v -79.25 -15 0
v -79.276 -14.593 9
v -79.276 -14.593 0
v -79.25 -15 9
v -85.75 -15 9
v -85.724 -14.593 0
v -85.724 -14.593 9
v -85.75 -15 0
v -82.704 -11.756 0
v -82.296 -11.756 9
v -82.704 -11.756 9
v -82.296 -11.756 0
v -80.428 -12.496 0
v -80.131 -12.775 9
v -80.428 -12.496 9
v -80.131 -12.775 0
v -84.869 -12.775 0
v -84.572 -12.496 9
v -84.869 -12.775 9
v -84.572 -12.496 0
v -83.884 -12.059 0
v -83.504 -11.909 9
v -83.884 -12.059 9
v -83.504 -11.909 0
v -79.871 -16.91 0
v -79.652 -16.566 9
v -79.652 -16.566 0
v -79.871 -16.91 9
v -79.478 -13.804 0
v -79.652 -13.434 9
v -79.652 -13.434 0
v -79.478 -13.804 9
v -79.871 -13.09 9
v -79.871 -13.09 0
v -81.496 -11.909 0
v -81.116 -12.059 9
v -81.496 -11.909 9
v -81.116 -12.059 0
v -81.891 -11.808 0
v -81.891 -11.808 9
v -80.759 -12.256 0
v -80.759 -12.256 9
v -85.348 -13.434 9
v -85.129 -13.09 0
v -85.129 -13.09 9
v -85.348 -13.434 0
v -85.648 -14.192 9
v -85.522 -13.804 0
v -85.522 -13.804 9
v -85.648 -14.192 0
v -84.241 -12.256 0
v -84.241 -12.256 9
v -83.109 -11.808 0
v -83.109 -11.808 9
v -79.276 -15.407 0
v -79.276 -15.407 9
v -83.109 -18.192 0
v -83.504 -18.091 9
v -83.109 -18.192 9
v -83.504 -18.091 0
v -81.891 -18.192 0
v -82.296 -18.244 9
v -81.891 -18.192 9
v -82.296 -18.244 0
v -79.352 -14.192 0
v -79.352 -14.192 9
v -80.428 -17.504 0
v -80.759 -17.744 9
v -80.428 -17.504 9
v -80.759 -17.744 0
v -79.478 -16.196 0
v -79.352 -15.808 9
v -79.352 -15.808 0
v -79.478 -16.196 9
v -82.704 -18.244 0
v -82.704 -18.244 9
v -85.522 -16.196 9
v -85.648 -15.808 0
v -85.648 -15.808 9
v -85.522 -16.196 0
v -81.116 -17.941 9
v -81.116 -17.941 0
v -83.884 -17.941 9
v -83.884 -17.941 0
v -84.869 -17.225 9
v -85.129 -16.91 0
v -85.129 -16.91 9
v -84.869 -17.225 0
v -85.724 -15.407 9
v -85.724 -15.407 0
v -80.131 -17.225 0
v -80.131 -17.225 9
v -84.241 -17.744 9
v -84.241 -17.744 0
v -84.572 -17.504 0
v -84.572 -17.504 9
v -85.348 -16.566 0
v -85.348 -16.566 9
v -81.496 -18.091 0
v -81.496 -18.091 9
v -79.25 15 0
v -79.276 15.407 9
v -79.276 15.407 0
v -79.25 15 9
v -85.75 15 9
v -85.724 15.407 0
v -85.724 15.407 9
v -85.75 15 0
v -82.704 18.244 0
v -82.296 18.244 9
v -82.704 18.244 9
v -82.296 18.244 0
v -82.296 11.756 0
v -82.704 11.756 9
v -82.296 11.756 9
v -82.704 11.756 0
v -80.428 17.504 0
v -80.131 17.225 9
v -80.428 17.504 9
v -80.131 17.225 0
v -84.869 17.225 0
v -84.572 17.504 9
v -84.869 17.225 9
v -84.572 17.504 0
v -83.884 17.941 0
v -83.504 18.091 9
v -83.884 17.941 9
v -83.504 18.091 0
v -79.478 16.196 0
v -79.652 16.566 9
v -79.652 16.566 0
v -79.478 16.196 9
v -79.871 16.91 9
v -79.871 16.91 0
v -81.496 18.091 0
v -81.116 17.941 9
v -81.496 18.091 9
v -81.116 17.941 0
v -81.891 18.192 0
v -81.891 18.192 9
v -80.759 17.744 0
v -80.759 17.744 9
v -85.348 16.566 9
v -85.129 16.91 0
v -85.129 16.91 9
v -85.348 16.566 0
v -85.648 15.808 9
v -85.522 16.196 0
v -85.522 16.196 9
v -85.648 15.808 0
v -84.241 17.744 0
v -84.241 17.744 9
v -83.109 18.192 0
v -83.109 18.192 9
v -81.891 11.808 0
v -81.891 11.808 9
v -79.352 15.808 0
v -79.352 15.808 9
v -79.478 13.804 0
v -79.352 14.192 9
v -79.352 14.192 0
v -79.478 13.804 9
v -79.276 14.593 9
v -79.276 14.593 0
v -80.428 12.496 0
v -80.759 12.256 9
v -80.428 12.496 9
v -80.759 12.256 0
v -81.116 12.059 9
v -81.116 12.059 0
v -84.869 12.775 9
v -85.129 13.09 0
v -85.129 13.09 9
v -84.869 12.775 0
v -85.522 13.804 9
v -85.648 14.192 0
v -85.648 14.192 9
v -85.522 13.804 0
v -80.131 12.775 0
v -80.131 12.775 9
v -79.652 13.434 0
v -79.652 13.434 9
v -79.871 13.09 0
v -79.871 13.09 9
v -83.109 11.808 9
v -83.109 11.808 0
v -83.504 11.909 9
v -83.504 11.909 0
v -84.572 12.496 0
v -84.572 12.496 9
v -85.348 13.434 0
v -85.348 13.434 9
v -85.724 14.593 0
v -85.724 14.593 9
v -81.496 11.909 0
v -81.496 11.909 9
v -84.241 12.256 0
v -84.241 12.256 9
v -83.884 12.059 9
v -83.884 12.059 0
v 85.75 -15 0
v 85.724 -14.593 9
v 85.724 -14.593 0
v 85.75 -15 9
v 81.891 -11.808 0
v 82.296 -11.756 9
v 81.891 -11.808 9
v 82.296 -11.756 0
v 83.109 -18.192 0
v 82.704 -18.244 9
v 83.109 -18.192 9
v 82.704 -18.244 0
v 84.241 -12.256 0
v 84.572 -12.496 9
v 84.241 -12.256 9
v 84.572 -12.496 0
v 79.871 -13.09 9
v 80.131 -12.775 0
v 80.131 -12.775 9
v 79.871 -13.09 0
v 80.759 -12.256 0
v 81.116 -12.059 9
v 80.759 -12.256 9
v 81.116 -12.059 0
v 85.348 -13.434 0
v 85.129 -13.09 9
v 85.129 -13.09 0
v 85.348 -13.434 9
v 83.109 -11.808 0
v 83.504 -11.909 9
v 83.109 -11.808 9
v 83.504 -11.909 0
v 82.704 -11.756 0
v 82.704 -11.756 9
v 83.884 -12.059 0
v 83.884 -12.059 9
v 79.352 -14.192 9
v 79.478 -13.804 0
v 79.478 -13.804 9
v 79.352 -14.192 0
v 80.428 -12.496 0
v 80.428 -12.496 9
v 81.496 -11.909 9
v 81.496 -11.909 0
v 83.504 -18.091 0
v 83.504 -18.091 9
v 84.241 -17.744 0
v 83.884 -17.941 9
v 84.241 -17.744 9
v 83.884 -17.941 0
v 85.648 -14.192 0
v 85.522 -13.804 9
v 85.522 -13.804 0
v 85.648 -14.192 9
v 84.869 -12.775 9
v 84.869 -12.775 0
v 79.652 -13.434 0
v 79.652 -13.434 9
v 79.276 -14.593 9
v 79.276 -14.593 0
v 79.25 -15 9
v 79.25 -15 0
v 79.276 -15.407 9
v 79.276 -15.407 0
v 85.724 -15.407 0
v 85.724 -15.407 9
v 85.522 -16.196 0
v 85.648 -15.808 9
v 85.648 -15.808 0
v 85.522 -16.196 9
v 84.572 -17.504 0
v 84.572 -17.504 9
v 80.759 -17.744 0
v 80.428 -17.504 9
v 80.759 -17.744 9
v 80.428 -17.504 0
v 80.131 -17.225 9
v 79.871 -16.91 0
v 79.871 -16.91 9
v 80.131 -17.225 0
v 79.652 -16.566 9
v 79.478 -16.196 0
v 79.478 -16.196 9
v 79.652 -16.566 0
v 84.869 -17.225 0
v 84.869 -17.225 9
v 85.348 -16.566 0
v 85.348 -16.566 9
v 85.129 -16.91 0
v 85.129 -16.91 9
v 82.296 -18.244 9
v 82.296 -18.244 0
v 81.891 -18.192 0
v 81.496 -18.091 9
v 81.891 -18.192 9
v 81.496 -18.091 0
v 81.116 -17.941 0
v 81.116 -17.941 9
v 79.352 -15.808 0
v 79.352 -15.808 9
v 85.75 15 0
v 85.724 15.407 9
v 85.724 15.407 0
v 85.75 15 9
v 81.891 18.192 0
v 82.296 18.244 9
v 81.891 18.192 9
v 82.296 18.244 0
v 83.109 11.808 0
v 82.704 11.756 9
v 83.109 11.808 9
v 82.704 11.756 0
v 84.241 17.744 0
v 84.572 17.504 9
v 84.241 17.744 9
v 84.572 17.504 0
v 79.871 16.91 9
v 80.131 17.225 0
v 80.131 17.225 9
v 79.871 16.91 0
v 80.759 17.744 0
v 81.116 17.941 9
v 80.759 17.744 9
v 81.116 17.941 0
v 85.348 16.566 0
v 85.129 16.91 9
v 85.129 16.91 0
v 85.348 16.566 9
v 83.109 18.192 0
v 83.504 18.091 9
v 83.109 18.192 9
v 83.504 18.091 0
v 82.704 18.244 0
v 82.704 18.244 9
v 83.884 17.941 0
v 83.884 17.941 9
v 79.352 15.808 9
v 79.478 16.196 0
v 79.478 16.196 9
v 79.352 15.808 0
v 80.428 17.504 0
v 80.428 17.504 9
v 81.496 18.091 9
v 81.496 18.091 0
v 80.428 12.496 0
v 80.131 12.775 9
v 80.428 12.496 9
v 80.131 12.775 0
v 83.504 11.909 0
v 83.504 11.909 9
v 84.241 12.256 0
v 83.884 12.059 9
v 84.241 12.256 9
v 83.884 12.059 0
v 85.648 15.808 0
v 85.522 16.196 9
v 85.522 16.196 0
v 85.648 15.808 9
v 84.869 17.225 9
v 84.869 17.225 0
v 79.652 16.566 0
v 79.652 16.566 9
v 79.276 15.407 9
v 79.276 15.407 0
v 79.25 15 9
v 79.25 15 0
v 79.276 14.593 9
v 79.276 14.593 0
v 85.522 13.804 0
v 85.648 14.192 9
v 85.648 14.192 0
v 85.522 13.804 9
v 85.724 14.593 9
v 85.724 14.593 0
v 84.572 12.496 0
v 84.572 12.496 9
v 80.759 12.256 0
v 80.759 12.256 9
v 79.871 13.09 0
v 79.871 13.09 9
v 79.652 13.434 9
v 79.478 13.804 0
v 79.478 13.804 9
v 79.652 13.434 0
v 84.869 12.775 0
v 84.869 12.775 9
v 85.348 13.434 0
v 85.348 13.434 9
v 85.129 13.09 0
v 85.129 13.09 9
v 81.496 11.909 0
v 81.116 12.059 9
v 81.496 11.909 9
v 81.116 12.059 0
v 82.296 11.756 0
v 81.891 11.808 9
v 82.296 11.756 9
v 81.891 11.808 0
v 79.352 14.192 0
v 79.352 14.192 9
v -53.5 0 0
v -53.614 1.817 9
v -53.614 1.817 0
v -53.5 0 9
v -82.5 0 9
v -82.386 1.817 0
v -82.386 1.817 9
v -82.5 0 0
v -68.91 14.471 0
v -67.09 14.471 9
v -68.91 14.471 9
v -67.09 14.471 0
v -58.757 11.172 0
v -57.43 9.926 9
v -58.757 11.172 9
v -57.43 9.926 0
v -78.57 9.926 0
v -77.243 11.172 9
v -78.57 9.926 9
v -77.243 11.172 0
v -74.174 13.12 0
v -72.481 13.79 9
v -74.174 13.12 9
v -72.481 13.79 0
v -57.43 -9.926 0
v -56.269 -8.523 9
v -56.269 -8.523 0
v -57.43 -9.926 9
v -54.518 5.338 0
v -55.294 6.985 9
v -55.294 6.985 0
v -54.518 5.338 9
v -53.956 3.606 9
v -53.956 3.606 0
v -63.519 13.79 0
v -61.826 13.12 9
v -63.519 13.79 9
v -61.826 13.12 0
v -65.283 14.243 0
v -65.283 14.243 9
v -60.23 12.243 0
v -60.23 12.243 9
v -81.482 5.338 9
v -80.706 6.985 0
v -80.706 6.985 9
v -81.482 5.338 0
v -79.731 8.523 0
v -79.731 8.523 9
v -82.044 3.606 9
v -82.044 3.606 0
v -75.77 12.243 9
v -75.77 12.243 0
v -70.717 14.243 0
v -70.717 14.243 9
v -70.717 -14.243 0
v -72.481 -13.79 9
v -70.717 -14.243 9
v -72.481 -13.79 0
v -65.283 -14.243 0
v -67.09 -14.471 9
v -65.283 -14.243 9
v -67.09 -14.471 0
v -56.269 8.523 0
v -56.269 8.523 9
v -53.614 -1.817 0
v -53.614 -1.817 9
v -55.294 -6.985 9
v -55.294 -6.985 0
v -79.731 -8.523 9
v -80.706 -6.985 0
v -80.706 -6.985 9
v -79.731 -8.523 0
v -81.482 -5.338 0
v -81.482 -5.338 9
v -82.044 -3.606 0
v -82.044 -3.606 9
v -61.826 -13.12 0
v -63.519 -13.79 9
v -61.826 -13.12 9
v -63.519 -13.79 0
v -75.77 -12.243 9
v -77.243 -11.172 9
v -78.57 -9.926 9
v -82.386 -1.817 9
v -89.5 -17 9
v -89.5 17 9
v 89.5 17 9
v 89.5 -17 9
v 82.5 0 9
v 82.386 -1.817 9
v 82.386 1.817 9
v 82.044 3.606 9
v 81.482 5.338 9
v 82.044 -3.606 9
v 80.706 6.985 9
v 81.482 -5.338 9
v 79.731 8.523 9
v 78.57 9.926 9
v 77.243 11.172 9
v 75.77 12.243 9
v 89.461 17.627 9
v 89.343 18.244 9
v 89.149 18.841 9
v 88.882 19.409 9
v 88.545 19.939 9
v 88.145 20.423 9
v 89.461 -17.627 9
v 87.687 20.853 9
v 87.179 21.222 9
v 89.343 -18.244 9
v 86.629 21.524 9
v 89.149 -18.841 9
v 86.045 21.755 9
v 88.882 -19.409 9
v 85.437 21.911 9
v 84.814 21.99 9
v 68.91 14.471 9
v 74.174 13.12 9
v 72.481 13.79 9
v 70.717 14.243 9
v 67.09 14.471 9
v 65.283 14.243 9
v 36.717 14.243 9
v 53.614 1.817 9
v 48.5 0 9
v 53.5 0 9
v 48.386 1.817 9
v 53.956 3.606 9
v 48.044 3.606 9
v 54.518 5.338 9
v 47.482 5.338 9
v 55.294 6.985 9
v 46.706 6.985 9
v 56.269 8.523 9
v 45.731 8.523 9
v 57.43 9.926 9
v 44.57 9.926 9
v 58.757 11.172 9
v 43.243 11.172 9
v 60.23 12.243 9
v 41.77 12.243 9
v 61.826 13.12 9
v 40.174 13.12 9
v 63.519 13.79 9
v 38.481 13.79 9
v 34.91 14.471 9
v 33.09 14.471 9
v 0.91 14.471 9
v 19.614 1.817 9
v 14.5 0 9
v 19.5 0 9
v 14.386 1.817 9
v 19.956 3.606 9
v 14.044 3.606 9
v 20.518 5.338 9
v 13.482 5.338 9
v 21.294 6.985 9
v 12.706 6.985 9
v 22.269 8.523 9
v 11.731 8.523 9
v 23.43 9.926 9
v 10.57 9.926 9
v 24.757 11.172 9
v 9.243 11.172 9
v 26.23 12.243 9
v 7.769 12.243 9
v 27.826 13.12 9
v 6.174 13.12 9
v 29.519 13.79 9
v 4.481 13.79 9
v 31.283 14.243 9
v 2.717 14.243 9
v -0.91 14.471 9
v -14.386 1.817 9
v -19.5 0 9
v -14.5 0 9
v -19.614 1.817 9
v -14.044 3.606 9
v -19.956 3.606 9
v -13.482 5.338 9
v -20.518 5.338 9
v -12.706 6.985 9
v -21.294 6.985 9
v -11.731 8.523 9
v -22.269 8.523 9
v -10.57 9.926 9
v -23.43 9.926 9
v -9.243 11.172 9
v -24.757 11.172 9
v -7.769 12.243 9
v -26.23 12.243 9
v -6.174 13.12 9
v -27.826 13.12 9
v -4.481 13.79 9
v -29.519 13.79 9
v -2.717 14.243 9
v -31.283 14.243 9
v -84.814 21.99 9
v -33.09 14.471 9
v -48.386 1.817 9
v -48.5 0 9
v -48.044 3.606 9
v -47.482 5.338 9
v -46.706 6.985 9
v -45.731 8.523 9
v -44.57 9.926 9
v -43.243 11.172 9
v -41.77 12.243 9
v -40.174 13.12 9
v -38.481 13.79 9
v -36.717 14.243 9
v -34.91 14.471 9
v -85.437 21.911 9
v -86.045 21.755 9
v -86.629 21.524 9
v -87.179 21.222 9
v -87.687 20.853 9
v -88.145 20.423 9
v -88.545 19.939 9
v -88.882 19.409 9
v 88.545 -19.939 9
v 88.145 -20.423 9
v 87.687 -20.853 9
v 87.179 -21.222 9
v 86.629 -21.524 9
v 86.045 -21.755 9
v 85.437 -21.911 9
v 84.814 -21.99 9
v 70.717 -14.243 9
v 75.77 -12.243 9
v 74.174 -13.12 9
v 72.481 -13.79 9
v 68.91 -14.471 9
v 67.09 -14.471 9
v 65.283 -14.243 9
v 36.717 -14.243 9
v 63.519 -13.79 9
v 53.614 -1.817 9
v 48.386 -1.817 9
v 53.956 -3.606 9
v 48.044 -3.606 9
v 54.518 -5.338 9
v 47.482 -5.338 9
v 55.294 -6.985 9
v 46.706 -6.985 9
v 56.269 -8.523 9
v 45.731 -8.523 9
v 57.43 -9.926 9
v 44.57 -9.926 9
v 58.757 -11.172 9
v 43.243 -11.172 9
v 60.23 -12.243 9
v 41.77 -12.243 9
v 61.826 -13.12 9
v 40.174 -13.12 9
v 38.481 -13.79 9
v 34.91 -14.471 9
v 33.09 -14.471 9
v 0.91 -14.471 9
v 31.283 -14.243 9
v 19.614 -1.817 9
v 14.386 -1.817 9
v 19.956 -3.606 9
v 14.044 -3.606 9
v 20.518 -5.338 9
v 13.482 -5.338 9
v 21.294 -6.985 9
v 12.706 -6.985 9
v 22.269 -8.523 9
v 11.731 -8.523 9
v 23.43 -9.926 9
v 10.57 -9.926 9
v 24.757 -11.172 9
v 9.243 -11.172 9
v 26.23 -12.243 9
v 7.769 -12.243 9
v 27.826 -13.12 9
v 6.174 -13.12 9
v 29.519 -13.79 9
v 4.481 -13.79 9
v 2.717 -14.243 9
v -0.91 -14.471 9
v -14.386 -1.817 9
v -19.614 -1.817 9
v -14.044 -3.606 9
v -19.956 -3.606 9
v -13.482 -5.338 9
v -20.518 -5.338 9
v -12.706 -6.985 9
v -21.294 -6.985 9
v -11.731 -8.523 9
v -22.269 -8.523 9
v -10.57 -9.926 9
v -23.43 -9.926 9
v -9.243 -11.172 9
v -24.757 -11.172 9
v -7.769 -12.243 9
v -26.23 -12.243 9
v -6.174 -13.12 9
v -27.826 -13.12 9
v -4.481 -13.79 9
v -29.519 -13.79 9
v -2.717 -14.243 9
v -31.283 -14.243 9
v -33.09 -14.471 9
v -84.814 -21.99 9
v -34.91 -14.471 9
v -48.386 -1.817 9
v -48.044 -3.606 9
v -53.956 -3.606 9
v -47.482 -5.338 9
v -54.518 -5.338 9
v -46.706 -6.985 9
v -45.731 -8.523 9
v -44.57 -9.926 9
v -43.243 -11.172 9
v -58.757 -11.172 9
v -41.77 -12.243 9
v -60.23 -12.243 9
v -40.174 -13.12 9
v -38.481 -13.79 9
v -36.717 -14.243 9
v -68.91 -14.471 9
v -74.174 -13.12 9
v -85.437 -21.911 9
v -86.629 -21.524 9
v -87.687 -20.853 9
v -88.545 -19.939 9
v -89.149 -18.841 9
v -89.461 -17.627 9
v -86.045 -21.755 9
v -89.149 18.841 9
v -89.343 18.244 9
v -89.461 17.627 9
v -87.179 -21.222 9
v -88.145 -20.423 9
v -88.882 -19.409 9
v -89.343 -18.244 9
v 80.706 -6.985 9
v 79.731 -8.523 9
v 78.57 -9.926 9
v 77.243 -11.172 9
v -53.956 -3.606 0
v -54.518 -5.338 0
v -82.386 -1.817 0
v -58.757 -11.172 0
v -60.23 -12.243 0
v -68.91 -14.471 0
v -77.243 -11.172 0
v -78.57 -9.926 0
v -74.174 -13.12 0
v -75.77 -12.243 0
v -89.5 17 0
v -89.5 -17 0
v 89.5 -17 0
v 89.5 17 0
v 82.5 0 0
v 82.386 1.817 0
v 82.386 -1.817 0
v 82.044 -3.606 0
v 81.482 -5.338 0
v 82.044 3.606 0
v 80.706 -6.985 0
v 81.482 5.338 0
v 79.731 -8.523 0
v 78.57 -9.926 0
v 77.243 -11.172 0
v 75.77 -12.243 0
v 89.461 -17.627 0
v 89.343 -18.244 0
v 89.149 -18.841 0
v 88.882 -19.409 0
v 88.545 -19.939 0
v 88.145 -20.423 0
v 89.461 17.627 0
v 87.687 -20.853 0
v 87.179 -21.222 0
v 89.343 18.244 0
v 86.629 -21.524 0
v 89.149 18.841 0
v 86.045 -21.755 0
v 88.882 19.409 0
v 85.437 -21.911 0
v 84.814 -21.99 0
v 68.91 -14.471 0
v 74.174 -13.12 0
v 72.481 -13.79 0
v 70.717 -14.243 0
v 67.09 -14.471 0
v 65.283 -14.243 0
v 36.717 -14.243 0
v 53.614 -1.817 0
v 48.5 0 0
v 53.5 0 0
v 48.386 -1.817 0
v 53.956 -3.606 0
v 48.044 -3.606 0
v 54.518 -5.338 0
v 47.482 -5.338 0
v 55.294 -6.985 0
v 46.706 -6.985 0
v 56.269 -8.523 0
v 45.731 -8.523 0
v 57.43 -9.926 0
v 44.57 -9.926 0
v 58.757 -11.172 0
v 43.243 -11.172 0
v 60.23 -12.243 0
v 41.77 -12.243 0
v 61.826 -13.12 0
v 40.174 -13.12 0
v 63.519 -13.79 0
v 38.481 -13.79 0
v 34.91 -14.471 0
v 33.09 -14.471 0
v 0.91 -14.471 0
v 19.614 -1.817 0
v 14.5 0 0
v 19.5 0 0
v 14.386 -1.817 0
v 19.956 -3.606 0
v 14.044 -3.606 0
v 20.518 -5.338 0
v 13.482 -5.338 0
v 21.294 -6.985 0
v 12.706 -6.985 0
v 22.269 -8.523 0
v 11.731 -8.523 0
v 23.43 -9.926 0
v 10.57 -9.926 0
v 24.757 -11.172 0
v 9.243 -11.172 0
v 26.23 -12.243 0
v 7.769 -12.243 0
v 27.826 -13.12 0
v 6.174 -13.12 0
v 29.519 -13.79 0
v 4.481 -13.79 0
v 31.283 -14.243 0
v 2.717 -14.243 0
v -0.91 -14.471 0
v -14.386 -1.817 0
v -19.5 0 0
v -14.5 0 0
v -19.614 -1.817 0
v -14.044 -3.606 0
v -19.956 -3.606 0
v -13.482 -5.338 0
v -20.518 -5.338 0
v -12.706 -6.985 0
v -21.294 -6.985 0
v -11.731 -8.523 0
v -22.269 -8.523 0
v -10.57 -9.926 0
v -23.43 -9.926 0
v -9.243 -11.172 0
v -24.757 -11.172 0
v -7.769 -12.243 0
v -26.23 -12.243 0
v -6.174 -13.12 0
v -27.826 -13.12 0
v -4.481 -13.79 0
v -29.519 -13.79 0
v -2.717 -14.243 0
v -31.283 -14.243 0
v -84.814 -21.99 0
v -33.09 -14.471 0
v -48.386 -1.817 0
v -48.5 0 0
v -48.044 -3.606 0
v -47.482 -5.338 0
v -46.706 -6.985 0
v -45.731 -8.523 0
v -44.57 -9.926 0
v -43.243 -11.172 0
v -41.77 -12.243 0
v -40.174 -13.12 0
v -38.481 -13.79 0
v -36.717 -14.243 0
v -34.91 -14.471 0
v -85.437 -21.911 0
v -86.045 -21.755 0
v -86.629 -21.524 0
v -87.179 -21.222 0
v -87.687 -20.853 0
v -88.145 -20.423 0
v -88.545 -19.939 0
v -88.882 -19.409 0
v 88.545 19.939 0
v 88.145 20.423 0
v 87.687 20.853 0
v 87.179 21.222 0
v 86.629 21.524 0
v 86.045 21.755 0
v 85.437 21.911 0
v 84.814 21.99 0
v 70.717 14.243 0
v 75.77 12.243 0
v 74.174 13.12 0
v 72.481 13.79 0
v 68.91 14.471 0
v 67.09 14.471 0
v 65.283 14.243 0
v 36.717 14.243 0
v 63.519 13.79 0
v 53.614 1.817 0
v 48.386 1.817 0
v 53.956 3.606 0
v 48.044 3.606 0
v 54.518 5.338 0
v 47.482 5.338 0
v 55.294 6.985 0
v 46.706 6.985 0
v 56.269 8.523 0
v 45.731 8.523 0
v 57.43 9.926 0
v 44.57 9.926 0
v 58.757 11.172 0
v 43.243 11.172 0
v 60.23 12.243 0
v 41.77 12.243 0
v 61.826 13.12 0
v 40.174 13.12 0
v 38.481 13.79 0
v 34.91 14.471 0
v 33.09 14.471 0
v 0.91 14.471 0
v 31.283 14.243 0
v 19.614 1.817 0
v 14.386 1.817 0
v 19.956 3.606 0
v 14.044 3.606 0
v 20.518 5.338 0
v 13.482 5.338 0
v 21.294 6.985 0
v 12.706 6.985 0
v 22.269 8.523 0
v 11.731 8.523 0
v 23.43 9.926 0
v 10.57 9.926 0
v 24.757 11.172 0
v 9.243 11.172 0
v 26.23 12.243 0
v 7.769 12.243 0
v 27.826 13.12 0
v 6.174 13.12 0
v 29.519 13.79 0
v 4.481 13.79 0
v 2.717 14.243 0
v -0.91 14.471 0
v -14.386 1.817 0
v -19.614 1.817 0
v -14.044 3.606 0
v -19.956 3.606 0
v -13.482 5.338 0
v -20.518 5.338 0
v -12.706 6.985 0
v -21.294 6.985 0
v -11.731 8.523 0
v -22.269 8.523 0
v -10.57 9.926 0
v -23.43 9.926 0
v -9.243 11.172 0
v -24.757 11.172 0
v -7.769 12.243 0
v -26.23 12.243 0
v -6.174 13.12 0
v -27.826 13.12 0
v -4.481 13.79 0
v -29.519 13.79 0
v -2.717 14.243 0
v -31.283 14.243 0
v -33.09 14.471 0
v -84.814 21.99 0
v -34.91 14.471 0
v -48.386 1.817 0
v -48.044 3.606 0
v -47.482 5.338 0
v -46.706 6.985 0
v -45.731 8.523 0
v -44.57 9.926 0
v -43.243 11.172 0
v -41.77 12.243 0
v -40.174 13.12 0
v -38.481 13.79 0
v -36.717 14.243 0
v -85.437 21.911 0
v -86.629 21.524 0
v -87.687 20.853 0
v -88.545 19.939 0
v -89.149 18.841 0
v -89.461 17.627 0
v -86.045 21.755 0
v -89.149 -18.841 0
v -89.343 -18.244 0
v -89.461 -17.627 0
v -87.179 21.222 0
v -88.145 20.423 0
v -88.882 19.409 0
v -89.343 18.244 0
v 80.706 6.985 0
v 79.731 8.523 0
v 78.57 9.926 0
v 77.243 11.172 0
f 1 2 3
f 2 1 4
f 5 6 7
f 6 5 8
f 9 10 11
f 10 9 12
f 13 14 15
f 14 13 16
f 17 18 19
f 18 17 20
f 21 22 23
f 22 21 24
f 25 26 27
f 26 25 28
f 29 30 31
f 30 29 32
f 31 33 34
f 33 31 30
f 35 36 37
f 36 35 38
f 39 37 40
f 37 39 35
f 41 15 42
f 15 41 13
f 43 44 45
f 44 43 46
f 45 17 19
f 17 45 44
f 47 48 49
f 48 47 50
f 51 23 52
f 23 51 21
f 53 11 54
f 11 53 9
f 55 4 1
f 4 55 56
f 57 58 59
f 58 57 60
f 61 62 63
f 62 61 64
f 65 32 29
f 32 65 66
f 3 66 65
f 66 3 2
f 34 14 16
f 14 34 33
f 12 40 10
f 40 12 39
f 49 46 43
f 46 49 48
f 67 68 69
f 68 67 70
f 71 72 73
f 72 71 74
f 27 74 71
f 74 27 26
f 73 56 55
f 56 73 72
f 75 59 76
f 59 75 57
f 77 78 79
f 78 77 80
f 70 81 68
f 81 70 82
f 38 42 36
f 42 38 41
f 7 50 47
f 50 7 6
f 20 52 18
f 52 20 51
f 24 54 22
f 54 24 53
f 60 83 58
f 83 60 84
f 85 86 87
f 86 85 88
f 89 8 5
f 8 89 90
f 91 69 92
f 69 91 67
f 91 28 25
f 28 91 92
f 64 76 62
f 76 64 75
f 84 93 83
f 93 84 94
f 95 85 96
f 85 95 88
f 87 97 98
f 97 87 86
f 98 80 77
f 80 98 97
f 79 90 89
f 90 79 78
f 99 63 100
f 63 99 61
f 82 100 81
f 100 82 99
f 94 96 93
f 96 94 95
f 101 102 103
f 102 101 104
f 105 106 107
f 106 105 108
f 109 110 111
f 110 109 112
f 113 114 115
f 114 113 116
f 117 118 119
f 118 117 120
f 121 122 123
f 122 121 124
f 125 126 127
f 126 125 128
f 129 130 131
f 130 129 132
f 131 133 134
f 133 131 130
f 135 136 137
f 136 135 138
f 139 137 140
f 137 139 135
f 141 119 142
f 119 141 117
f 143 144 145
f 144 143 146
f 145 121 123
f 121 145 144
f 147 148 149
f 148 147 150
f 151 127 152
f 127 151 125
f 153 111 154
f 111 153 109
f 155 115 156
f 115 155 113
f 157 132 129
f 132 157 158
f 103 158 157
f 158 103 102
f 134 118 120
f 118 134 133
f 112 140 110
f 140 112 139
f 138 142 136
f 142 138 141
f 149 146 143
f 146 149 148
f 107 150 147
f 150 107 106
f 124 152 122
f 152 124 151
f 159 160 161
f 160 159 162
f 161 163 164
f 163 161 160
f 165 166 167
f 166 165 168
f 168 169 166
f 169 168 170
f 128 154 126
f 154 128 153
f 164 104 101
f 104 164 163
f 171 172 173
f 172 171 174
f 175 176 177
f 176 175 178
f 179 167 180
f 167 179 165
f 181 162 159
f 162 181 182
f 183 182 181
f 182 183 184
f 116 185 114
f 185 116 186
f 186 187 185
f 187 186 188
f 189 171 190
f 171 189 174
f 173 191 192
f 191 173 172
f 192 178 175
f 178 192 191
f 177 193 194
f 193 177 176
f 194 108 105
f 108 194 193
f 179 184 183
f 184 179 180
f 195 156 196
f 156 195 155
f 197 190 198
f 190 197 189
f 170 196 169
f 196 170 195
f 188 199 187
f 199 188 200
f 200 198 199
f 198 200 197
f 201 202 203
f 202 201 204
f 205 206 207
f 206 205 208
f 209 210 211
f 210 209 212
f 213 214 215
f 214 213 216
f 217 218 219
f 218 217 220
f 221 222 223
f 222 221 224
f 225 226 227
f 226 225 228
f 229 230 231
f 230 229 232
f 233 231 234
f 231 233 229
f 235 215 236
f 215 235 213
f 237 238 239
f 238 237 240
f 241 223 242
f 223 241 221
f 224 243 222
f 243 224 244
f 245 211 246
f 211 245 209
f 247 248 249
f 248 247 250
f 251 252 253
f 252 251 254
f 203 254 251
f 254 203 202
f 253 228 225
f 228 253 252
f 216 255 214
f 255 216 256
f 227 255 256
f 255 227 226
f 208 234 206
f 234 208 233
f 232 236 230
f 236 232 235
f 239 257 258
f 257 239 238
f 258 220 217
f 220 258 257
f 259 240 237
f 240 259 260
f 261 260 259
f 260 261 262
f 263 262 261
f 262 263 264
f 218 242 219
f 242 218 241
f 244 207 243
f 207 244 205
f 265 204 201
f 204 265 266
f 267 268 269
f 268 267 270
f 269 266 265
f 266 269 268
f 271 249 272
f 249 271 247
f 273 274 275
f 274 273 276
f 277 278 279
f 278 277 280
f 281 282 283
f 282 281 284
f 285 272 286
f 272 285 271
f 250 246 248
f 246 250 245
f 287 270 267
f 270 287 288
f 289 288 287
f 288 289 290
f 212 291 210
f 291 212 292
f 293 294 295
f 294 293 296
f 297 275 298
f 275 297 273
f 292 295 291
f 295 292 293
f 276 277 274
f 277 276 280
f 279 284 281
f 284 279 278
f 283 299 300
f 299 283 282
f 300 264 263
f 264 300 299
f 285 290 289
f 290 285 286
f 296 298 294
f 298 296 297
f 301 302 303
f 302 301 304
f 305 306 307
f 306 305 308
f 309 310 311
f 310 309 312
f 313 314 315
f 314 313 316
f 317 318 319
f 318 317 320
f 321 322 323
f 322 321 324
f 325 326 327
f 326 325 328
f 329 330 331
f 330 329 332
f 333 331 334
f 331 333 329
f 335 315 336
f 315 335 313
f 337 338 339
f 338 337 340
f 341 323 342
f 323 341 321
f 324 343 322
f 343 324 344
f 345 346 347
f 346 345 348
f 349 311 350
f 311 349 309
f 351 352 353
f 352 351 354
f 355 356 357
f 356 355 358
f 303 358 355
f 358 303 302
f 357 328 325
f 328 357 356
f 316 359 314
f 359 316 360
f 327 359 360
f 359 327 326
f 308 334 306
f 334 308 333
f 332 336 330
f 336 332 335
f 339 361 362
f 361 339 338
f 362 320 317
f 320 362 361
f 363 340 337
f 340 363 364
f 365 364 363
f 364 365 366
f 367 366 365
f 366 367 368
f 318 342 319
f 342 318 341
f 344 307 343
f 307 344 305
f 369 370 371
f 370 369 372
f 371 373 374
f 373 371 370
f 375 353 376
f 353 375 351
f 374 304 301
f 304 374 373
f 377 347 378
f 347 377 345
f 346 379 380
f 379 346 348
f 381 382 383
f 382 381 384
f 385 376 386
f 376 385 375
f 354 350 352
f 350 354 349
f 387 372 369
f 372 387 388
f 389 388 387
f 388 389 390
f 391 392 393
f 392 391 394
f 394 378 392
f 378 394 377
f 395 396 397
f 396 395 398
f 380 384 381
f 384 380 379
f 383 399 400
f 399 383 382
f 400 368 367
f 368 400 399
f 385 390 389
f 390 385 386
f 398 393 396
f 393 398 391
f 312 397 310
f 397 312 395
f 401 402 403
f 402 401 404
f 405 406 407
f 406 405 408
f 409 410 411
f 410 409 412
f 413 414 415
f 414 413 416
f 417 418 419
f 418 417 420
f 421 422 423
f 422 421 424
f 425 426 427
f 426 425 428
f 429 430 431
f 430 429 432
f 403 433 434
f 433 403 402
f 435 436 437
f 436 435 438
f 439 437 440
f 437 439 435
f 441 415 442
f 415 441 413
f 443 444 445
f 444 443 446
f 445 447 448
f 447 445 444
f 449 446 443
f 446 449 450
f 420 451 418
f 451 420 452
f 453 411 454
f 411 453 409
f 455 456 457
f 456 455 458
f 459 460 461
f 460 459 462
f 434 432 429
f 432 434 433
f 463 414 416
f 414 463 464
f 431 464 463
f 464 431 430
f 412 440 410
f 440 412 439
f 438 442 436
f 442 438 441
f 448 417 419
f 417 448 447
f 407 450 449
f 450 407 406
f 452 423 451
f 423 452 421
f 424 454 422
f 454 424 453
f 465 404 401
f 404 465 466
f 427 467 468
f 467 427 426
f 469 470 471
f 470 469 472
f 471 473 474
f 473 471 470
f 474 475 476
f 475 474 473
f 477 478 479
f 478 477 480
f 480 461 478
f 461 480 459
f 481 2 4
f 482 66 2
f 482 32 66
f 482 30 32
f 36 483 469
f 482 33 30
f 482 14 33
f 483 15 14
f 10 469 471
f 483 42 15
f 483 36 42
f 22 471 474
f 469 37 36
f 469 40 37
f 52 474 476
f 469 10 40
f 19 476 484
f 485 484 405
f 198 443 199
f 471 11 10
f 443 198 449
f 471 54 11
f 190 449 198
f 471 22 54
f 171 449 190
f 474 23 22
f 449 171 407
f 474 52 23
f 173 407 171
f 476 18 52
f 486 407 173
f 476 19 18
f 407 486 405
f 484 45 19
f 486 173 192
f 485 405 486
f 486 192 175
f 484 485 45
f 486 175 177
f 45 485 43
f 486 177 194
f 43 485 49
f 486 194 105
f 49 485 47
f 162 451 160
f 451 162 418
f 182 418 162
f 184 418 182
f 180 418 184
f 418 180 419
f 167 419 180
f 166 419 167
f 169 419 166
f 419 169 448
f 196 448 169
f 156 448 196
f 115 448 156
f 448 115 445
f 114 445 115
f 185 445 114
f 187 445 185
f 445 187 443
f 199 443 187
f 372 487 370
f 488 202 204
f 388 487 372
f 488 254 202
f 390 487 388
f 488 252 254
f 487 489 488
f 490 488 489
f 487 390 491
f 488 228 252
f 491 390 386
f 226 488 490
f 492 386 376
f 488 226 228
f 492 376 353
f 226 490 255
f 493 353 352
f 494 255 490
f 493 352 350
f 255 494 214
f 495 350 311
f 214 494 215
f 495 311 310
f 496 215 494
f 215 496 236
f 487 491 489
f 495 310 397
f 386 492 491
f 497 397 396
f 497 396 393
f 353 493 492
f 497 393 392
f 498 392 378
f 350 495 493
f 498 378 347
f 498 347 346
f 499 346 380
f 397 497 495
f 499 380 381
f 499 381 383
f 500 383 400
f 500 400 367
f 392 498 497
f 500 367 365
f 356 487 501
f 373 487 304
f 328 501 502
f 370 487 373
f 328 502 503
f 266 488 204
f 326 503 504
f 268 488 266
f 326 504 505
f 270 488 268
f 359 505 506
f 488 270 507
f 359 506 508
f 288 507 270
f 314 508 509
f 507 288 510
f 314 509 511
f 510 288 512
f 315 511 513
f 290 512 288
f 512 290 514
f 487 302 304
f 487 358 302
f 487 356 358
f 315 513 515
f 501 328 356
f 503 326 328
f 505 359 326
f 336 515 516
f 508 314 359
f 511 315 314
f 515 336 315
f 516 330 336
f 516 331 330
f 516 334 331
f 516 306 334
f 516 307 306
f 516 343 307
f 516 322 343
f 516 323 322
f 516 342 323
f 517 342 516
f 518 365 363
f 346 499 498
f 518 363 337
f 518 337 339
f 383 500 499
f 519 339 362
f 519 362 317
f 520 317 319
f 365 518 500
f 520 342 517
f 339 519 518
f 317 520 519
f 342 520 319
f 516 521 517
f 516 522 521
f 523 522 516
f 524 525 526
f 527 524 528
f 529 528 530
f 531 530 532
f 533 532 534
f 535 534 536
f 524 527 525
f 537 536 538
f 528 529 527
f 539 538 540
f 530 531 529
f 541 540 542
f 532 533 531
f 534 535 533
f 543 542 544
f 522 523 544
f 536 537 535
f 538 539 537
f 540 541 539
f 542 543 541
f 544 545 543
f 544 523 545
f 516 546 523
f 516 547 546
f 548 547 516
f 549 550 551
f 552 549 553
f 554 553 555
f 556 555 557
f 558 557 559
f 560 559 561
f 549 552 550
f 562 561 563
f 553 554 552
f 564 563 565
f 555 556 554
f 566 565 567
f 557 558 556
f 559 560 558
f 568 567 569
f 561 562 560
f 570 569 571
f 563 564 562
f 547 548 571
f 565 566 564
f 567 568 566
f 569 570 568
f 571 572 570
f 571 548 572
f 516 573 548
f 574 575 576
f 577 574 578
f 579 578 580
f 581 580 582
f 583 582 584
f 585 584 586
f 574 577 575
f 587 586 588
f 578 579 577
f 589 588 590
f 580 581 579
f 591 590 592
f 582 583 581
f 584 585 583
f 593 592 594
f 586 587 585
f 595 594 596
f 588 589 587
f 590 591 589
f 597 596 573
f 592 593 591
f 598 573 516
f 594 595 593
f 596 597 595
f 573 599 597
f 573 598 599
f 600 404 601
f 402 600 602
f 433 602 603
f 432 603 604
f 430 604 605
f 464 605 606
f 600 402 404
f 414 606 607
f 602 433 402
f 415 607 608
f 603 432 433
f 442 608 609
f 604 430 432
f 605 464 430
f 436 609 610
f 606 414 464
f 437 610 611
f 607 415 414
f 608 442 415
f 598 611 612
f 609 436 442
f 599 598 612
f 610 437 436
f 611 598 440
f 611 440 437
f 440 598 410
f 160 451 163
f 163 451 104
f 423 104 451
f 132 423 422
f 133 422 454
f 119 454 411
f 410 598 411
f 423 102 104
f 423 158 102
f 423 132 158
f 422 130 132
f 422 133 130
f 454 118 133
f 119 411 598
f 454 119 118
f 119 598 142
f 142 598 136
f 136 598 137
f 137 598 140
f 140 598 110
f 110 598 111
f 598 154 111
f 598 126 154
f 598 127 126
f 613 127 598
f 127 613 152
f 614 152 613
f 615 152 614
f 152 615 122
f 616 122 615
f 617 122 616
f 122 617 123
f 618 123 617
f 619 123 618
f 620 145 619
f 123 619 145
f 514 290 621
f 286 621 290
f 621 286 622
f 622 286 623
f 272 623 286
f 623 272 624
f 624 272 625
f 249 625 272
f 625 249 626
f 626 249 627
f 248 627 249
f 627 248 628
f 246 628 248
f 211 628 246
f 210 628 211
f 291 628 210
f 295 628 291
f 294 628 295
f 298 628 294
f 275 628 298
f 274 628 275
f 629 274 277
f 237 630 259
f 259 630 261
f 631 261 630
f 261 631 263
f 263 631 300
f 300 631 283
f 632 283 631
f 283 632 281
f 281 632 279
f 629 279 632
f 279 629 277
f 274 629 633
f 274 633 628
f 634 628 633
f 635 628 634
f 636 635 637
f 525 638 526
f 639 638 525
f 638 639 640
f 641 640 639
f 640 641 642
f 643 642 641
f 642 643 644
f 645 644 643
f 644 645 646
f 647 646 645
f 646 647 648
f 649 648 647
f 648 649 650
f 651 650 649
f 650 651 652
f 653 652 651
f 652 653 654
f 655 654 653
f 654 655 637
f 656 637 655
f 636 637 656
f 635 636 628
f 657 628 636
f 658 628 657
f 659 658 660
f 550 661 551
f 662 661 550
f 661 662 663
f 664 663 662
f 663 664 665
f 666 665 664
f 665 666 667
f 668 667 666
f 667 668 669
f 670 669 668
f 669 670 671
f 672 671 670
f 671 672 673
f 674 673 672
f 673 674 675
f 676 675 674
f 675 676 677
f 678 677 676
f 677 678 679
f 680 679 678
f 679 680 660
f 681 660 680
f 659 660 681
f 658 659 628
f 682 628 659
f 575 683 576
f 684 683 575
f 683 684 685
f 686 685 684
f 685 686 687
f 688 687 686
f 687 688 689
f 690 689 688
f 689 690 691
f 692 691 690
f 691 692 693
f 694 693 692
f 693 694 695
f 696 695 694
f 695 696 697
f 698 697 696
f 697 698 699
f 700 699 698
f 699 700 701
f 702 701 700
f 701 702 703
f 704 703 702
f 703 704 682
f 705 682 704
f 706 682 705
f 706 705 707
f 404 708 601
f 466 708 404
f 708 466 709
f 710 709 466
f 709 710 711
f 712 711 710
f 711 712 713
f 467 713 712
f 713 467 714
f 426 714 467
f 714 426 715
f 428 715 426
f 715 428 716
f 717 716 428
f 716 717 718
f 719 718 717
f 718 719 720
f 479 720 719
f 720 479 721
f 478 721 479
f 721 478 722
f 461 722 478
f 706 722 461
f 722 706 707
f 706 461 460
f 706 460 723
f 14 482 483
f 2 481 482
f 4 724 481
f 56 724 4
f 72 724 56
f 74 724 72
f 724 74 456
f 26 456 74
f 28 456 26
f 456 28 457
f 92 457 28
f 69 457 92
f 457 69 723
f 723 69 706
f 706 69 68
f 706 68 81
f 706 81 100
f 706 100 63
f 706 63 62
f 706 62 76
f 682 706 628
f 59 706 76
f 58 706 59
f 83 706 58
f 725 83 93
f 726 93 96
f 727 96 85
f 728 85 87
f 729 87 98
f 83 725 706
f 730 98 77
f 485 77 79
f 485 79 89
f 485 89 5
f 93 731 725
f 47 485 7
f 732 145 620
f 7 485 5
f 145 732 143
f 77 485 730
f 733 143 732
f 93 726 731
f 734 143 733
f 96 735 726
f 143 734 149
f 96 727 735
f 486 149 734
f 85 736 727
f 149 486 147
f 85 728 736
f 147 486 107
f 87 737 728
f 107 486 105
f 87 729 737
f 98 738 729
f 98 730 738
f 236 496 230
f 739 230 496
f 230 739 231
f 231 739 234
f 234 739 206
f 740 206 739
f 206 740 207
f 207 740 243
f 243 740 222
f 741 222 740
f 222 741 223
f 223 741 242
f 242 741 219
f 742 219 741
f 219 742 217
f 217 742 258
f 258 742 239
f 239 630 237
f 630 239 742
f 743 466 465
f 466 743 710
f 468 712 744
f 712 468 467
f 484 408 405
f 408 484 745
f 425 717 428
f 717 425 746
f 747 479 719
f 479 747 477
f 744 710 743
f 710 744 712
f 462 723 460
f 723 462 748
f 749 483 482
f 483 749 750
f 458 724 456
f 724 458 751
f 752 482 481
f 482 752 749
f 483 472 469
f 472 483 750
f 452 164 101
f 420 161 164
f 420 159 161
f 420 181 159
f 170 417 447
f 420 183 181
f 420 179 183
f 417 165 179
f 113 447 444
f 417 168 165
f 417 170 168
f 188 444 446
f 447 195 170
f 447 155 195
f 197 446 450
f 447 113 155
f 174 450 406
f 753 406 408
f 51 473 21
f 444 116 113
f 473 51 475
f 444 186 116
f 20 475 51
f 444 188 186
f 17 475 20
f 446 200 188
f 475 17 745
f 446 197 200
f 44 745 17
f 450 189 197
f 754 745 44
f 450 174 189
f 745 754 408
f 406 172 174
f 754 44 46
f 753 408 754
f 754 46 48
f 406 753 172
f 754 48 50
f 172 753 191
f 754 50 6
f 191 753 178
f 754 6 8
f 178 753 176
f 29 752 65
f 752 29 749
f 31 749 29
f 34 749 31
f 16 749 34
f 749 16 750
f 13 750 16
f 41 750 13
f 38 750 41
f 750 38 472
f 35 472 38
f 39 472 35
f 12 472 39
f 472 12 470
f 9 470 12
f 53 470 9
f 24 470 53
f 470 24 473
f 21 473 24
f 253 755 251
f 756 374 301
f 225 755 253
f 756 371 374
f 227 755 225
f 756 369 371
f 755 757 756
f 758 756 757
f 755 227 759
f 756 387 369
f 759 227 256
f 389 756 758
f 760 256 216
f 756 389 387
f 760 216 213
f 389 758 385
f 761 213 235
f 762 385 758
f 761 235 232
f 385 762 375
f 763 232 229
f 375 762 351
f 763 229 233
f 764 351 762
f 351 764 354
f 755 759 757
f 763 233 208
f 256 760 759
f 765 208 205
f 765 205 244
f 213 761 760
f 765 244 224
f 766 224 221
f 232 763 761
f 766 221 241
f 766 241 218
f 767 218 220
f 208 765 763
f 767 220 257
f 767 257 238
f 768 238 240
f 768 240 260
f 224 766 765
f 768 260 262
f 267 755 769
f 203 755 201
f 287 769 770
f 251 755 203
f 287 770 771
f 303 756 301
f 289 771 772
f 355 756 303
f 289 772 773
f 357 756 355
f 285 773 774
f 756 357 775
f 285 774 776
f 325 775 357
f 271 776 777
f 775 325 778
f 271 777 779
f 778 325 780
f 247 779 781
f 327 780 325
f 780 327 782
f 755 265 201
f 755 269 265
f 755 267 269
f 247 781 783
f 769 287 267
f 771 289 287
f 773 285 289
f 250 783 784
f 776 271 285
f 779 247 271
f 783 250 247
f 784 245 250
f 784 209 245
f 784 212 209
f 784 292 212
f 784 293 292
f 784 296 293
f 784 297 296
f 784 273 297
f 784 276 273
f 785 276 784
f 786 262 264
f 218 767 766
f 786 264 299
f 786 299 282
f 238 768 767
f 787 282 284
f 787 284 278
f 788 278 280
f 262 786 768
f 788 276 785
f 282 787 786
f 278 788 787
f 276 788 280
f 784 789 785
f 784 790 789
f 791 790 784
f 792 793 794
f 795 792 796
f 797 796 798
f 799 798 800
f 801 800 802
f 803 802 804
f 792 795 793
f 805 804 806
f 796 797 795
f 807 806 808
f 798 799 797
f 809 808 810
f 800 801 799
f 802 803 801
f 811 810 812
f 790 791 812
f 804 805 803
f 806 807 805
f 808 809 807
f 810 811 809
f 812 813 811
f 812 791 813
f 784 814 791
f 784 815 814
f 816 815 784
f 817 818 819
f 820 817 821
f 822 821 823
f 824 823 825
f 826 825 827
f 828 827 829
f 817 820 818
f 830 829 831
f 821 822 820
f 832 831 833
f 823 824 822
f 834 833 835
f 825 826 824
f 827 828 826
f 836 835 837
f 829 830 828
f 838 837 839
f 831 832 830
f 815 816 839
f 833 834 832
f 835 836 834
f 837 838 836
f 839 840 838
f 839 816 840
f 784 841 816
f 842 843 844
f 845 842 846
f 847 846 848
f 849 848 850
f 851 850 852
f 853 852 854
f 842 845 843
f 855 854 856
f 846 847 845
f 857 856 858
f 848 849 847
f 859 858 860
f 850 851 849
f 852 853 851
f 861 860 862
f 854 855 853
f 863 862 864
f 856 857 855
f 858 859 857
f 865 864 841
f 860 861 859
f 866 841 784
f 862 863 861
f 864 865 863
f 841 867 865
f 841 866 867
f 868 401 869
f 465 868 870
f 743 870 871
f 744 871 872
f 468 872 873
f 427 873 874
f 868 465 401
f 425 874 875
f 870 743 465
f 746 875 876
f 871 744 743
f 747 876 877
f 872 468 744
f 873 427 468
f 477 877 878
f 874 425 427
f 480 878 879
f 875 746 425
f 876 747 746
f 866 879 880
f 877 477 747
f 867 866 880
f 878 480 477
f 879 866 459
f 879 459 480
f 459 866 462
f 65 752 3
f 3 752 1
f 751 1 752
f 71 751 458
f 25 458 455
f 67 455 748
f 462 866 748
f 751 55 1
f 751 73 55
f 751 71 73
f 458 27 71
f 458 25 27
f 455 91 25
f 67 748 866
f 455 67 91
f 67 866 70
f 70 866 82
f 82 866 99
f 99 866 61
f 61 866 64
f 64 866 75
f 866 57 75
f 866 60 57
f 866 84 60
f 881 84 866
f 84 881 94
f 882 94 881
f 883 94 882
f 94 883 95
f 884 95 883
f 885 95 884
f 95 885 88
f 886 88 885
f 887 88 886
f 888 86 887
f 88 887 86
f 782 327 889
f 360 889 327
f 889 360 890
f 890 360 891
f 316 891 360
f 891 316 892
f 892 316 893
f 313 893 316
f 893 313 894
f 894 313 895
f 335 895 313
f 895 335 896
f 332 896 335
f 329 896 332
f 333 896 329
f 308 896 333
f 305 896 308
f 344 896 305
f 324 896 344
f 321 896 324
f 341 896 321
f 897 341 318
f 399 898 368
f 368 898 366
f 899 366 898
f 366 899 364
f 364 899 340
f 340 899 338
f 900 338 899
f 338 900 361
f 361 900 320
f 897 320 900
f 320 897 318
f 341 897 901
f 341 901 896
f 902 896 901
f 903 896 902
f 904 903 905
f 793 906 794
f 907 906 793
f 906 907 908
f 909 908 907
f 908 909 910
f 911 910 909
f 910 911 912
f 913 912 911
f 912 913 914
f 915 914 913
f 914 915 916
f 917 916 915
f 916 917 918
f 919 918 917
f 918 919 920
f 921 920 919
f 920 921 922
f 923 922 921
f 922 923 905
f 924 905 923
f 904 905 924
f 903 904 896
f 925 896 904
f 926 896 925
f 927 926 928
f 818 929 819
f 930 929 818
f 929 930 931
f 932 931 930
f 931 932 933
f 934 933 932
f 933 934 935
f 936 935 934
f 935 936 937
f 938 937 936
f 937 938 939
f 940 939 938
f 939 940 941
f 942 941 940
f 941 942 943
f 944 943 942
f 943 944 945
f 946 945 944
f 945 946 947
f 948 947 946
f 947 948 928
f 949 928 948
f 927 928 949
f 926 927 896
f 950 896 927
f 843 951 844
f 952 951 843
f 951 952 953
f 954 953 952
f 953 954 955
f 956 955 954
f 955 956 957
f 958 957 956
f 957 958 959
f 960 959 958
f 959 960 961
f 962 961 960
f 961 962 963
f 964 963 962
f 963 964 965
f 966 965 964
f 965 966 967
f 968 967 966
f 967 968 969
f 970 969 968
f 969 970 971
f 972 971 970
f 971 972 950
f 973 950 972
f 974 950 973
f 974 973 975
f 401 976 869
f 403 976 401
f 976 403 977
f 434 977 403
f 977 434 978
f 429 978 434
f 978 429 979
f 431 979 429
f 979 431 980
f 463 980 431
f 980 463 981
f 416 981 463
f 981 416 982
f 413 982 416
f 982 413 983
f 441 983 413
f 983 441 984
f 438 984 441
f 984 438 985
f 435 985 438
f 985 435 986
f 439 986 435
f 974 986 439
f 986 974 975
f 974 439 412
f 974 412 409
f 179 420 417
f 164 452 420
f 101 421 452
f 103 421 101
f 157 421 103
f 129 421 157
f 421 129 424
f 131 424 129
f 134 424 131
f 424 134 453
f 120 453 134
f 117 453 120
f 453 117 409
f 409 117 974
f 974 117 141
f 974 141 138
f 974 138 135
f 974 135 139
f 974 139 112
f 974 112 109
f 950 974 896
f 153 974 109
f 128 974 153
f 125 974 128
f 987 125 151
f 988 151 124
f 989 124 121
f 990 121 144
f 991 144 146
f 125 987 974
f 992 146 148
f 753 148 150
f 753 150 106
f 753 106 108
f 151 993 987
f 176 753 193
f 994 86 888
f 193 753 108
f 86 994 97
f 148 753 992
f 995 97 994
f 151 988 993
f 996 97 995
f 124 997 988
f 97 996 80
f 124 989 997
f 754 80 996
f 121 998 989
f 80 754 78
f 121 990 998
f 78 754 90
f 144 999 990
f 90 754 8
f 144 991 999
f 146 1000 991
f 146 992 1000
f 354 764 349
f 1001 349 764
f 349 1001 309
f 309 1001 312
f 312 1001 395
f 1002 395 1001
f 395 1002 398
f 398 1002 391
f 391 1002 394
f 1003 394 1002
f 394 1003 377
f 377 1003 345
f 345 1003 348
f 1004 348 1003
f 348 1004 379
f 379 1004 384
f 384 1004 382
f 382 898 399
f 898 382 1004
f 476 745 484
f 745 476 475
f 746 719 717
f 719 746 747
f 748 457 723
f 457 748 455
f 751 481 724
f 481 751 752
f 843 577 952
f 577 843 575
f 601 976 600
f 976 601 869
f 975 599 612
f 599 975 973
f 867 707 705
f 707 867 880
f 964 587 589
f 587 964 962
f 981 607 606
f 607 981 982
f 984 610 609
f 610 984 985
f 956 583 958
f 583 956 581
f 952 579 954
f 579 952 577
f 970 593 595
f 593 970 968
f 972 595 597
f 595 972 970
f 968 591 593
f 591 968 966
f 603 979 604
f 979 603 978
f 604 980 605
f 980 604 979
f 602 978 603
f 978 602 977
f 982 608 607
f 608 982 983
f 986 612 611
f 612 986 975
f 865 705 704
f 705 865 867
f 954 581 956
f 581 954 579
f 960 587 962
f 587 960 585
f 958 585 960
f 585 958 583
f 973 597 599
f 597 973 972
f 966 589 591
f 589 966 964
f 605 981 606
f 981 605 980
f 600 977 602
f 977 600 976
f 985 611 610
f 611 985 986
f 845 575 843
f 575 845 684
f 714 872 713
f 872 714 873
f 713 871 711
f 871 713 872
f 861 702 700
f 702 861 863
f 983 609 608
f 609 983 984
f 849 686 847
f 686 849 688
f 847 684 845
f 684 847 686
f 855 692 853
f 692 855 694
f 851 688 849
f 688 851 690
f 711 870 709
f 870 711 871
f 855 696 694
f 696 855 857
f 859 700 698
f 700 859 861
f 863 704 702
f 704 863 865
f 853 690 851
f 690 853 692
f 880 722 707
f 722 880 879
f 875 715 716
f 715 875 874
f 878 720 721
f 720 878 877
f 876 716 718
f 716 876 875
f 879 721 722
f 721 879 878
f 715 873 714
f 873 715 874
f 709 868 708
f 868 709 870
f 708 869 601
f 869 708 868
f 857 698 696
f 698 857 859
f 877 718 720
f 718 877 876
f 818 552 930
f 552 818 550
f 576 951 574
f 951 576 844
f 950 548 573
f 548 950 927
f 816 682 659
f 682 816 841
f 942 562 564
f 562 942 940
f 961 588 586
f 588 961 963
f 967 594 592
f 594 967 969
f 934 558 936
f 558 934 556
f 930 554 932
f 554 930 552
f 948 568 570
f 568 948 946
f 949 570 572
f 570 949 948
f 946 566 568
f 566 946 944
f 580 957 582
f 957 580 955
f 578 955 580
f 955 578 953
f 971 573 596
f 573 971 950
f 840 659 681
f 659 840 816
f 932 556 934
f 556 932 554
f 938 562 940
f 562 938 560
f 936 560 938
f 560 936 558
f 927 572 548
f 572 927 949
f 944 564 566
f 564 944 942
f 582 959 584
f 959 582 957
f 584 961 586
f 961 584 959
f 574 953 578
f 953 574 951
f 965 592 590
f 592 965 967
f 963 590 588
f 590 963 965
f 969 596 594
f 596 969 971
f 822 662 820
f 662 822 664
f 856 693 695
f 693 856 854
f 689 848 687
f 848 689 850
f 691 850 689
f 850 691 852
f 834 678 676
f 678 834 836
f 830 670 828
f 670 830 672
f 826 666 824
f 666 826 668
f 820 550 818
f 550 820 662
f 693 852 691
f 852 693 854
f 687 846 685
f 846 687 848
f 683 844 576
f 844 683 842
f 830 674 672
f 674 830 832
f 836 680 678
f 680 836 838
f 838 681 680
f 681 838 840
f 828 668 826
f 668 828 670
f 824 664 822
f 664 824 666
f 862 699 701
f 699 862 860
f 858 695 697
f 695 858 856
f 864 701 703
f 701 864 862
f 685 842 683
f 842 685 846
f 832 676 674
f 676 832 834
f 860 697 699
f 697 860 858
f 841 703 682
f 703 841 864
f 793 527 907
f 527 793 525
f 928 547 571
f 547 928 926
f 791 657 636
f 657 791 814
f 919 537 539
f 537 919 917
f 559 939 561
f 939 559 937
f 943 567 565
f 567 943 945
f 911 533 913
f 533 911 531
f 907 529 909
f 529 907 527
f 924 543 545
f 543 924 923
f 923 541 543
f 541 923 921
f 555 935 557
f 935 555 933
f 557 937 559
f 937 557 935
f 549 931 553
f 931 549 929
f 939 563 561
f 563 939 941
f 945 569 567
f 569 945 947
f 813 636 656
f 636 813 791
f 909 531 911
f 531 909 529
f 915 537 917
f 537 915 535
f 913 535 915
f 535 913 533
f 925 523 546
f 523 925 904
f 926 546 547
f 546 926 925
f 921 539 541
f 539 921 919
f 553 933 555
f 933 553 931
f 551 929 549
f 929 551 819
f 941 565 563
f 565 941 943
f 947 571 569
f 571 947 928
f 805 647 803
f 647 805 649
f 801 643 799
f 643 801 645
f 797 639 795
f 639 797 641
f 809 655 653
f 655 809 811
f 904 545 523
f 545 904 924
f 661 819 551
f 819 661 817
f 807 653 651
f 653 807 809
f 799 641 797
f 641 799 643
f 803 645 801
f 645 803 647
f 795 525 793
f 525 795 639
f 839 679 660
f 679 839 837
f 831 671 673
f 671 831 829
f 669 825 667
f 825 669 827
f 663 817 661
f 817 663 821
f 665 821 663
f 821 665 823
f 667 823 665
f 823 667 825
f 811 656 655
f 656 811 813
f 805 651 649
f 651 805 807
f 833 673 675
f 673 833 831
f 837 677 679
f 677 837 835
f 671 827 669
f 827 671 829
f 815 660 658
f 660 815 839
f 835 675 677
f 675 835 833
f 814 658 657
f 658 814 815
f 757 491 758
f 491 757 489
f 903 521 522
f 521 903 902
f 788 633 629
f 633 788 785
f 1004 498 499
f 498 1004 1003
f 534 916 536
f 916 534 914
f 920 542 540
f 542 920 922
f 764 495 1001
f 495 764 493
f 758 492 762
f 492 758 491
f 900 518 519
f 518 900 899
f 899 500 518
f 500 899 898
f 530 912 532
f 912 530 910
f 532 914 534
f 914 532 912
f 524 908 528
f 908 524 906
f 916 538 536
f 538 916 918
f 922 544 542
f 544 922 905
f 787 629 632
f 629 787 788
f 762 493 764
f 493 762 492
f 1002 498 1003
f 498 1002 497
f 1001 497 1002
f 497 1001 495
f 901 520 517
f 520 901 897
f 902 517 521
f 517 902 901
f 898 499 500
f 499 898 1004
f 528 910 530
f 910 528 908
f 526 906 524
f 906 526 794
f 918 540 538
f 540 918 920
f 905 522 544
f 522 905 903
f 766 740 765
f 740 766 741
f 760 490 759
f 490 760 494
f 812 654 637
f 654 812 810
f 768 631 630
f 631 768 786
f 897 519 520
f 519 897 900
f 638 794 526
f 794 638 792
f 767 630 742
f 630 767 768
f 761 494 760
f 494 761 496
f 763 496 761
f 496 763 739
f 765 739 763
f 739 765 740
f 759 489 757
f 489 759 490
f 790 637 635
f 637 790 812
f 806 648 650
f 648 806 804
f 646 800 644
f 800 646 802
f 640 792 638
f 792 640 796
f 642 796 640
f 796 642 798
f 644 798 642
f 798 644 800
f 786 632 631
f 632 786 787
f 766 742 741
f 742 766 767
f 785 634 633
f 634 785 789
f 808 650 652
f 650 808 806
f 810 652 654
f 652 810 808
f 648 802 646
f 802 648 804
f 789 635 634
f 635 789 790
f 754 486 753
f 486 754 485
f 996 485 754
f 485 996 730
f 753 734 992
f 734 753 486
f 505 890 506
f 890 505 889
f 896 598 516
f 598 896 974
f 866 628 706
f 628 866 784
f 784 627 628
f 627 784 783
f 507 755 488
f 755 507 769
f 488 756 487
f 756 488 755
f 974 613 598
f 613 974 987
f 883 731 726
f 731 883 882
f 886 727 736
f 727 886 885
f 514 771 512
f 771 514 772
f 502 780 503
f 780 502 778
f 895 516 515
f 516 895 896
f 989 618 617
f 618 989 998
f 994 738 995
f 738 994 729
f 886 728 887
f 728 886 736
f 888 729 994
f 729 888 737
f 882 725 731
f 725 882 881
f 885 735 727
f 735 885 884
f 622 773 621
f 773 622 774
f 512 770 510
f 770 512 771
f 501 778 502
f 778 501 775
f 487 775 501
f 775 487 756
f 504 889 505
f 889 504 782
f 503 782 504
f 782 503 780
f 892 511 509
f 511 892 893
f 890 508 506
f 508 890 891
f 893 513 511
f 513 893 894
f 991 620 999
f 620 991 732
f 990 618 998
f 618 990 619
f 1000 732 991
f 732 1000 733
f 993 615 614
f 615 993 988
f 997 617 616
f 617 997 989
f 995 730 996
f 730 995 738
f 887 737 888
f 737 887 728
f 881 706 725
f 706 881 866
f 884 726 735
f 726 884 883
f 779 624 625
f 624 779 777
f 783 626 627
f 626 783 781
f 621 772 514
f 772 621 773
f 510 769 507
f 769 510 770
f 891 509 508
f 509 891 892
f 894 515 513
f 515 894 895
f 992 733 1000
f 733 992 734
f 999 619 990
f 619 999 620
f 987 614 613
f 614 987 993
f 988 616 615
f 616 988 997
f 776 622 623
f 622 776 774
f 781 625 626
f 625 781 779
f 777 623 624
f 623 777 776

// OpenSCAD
$fn = 50;


difference() {
	union() {
		hull() {
			translate(v = [-84.5000000000, 17.0000000000, 0]) {
				cylinder(h = 9, r = 5);
			}
			translate(v = [84.5000000000, 17.0000000000, 0]) {
				cylinder(h = 9, r = 5);
			}
			translate(v = [-84.5000000000, -17.0000000000, 0]) {
				cylinder(h = 9, r = 5);
			}
			translate(v = [84.5000000000, -17.0000000000, 0]) {
				cylinder(h = 9, r = 5);
			}
		}
	}
	union() {
		#translate(v = [-82.5000000000, -15.0000000000, -100.0000000000]) {
			cylinder(h = 200, r = 3.2500000000);
		}
		#translate(v = [-82.5000000000, 15.0000000000, -100.0000000000]) {
			cylinder(h = 200, r = 3.2500000000);
		}
		#translate(v = [82.5000000000, -15.0000000000, -100.0000000000]) {
			cylinder(h = 200, r = 3.2500000000);
		}
		#translate(v = [82.5000000000, 15.0000000000, -100.0000000000]) {
			cylinder(h = 200, r = 3.2500000000);
		}
		#translate(v = [-68.0000000000, 0, 0]) {
			cylinder(h = 9, r = 14.5000000000);
		}
		#translate(v = [-34.0000000000, 0, 0]) {
			cylinder(h = 9, r = 14.5000000000);
		}
		#cylinder(h = 9, r = 14.5000000000);
		#translate(v = [34.0000000000, 0, 0]) {
			cylinder(h = 9, r = 14.5000000000);
		}
		#translate(v = [68.0000000000, 0, 0]) {
			cylinder(h = 9, r = 14.5000000000);
		}
	}
}
